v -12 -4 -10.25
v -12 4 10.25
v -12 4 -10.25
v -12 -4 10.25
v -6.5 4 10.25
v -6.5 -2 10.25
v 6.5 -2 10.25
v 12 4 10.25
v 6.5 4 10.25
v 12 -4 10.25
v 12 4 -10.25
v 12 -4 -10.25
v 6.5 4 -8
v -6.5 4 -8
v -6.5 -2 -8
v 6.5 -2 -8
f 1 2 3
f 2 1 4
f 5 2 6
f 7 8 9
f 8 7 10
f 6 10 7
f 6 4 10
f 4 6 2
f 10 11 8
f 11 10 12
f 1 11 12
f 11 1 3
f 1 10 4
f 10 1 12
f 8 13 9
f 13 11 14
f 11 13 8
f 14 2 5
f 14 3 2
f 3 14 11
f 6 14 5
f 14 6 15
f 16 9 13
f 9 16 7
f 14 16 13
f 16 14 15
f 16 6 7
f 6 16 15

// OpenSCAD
//DHT11-Halterung

difference() {
cube(size = [24,8,20.5], center = true);

translate(v = [-6.5, -2, -8])
cube(size = [13,7,18.5]);
   
}

/*
translate(v = [-12, -4, 10])
cube(size = [24,4,1.5]);

translate(v = [-10, -2, -8])
color( "red", 1.0 )
cube(size = [12.5,5.8,18]);
*/
